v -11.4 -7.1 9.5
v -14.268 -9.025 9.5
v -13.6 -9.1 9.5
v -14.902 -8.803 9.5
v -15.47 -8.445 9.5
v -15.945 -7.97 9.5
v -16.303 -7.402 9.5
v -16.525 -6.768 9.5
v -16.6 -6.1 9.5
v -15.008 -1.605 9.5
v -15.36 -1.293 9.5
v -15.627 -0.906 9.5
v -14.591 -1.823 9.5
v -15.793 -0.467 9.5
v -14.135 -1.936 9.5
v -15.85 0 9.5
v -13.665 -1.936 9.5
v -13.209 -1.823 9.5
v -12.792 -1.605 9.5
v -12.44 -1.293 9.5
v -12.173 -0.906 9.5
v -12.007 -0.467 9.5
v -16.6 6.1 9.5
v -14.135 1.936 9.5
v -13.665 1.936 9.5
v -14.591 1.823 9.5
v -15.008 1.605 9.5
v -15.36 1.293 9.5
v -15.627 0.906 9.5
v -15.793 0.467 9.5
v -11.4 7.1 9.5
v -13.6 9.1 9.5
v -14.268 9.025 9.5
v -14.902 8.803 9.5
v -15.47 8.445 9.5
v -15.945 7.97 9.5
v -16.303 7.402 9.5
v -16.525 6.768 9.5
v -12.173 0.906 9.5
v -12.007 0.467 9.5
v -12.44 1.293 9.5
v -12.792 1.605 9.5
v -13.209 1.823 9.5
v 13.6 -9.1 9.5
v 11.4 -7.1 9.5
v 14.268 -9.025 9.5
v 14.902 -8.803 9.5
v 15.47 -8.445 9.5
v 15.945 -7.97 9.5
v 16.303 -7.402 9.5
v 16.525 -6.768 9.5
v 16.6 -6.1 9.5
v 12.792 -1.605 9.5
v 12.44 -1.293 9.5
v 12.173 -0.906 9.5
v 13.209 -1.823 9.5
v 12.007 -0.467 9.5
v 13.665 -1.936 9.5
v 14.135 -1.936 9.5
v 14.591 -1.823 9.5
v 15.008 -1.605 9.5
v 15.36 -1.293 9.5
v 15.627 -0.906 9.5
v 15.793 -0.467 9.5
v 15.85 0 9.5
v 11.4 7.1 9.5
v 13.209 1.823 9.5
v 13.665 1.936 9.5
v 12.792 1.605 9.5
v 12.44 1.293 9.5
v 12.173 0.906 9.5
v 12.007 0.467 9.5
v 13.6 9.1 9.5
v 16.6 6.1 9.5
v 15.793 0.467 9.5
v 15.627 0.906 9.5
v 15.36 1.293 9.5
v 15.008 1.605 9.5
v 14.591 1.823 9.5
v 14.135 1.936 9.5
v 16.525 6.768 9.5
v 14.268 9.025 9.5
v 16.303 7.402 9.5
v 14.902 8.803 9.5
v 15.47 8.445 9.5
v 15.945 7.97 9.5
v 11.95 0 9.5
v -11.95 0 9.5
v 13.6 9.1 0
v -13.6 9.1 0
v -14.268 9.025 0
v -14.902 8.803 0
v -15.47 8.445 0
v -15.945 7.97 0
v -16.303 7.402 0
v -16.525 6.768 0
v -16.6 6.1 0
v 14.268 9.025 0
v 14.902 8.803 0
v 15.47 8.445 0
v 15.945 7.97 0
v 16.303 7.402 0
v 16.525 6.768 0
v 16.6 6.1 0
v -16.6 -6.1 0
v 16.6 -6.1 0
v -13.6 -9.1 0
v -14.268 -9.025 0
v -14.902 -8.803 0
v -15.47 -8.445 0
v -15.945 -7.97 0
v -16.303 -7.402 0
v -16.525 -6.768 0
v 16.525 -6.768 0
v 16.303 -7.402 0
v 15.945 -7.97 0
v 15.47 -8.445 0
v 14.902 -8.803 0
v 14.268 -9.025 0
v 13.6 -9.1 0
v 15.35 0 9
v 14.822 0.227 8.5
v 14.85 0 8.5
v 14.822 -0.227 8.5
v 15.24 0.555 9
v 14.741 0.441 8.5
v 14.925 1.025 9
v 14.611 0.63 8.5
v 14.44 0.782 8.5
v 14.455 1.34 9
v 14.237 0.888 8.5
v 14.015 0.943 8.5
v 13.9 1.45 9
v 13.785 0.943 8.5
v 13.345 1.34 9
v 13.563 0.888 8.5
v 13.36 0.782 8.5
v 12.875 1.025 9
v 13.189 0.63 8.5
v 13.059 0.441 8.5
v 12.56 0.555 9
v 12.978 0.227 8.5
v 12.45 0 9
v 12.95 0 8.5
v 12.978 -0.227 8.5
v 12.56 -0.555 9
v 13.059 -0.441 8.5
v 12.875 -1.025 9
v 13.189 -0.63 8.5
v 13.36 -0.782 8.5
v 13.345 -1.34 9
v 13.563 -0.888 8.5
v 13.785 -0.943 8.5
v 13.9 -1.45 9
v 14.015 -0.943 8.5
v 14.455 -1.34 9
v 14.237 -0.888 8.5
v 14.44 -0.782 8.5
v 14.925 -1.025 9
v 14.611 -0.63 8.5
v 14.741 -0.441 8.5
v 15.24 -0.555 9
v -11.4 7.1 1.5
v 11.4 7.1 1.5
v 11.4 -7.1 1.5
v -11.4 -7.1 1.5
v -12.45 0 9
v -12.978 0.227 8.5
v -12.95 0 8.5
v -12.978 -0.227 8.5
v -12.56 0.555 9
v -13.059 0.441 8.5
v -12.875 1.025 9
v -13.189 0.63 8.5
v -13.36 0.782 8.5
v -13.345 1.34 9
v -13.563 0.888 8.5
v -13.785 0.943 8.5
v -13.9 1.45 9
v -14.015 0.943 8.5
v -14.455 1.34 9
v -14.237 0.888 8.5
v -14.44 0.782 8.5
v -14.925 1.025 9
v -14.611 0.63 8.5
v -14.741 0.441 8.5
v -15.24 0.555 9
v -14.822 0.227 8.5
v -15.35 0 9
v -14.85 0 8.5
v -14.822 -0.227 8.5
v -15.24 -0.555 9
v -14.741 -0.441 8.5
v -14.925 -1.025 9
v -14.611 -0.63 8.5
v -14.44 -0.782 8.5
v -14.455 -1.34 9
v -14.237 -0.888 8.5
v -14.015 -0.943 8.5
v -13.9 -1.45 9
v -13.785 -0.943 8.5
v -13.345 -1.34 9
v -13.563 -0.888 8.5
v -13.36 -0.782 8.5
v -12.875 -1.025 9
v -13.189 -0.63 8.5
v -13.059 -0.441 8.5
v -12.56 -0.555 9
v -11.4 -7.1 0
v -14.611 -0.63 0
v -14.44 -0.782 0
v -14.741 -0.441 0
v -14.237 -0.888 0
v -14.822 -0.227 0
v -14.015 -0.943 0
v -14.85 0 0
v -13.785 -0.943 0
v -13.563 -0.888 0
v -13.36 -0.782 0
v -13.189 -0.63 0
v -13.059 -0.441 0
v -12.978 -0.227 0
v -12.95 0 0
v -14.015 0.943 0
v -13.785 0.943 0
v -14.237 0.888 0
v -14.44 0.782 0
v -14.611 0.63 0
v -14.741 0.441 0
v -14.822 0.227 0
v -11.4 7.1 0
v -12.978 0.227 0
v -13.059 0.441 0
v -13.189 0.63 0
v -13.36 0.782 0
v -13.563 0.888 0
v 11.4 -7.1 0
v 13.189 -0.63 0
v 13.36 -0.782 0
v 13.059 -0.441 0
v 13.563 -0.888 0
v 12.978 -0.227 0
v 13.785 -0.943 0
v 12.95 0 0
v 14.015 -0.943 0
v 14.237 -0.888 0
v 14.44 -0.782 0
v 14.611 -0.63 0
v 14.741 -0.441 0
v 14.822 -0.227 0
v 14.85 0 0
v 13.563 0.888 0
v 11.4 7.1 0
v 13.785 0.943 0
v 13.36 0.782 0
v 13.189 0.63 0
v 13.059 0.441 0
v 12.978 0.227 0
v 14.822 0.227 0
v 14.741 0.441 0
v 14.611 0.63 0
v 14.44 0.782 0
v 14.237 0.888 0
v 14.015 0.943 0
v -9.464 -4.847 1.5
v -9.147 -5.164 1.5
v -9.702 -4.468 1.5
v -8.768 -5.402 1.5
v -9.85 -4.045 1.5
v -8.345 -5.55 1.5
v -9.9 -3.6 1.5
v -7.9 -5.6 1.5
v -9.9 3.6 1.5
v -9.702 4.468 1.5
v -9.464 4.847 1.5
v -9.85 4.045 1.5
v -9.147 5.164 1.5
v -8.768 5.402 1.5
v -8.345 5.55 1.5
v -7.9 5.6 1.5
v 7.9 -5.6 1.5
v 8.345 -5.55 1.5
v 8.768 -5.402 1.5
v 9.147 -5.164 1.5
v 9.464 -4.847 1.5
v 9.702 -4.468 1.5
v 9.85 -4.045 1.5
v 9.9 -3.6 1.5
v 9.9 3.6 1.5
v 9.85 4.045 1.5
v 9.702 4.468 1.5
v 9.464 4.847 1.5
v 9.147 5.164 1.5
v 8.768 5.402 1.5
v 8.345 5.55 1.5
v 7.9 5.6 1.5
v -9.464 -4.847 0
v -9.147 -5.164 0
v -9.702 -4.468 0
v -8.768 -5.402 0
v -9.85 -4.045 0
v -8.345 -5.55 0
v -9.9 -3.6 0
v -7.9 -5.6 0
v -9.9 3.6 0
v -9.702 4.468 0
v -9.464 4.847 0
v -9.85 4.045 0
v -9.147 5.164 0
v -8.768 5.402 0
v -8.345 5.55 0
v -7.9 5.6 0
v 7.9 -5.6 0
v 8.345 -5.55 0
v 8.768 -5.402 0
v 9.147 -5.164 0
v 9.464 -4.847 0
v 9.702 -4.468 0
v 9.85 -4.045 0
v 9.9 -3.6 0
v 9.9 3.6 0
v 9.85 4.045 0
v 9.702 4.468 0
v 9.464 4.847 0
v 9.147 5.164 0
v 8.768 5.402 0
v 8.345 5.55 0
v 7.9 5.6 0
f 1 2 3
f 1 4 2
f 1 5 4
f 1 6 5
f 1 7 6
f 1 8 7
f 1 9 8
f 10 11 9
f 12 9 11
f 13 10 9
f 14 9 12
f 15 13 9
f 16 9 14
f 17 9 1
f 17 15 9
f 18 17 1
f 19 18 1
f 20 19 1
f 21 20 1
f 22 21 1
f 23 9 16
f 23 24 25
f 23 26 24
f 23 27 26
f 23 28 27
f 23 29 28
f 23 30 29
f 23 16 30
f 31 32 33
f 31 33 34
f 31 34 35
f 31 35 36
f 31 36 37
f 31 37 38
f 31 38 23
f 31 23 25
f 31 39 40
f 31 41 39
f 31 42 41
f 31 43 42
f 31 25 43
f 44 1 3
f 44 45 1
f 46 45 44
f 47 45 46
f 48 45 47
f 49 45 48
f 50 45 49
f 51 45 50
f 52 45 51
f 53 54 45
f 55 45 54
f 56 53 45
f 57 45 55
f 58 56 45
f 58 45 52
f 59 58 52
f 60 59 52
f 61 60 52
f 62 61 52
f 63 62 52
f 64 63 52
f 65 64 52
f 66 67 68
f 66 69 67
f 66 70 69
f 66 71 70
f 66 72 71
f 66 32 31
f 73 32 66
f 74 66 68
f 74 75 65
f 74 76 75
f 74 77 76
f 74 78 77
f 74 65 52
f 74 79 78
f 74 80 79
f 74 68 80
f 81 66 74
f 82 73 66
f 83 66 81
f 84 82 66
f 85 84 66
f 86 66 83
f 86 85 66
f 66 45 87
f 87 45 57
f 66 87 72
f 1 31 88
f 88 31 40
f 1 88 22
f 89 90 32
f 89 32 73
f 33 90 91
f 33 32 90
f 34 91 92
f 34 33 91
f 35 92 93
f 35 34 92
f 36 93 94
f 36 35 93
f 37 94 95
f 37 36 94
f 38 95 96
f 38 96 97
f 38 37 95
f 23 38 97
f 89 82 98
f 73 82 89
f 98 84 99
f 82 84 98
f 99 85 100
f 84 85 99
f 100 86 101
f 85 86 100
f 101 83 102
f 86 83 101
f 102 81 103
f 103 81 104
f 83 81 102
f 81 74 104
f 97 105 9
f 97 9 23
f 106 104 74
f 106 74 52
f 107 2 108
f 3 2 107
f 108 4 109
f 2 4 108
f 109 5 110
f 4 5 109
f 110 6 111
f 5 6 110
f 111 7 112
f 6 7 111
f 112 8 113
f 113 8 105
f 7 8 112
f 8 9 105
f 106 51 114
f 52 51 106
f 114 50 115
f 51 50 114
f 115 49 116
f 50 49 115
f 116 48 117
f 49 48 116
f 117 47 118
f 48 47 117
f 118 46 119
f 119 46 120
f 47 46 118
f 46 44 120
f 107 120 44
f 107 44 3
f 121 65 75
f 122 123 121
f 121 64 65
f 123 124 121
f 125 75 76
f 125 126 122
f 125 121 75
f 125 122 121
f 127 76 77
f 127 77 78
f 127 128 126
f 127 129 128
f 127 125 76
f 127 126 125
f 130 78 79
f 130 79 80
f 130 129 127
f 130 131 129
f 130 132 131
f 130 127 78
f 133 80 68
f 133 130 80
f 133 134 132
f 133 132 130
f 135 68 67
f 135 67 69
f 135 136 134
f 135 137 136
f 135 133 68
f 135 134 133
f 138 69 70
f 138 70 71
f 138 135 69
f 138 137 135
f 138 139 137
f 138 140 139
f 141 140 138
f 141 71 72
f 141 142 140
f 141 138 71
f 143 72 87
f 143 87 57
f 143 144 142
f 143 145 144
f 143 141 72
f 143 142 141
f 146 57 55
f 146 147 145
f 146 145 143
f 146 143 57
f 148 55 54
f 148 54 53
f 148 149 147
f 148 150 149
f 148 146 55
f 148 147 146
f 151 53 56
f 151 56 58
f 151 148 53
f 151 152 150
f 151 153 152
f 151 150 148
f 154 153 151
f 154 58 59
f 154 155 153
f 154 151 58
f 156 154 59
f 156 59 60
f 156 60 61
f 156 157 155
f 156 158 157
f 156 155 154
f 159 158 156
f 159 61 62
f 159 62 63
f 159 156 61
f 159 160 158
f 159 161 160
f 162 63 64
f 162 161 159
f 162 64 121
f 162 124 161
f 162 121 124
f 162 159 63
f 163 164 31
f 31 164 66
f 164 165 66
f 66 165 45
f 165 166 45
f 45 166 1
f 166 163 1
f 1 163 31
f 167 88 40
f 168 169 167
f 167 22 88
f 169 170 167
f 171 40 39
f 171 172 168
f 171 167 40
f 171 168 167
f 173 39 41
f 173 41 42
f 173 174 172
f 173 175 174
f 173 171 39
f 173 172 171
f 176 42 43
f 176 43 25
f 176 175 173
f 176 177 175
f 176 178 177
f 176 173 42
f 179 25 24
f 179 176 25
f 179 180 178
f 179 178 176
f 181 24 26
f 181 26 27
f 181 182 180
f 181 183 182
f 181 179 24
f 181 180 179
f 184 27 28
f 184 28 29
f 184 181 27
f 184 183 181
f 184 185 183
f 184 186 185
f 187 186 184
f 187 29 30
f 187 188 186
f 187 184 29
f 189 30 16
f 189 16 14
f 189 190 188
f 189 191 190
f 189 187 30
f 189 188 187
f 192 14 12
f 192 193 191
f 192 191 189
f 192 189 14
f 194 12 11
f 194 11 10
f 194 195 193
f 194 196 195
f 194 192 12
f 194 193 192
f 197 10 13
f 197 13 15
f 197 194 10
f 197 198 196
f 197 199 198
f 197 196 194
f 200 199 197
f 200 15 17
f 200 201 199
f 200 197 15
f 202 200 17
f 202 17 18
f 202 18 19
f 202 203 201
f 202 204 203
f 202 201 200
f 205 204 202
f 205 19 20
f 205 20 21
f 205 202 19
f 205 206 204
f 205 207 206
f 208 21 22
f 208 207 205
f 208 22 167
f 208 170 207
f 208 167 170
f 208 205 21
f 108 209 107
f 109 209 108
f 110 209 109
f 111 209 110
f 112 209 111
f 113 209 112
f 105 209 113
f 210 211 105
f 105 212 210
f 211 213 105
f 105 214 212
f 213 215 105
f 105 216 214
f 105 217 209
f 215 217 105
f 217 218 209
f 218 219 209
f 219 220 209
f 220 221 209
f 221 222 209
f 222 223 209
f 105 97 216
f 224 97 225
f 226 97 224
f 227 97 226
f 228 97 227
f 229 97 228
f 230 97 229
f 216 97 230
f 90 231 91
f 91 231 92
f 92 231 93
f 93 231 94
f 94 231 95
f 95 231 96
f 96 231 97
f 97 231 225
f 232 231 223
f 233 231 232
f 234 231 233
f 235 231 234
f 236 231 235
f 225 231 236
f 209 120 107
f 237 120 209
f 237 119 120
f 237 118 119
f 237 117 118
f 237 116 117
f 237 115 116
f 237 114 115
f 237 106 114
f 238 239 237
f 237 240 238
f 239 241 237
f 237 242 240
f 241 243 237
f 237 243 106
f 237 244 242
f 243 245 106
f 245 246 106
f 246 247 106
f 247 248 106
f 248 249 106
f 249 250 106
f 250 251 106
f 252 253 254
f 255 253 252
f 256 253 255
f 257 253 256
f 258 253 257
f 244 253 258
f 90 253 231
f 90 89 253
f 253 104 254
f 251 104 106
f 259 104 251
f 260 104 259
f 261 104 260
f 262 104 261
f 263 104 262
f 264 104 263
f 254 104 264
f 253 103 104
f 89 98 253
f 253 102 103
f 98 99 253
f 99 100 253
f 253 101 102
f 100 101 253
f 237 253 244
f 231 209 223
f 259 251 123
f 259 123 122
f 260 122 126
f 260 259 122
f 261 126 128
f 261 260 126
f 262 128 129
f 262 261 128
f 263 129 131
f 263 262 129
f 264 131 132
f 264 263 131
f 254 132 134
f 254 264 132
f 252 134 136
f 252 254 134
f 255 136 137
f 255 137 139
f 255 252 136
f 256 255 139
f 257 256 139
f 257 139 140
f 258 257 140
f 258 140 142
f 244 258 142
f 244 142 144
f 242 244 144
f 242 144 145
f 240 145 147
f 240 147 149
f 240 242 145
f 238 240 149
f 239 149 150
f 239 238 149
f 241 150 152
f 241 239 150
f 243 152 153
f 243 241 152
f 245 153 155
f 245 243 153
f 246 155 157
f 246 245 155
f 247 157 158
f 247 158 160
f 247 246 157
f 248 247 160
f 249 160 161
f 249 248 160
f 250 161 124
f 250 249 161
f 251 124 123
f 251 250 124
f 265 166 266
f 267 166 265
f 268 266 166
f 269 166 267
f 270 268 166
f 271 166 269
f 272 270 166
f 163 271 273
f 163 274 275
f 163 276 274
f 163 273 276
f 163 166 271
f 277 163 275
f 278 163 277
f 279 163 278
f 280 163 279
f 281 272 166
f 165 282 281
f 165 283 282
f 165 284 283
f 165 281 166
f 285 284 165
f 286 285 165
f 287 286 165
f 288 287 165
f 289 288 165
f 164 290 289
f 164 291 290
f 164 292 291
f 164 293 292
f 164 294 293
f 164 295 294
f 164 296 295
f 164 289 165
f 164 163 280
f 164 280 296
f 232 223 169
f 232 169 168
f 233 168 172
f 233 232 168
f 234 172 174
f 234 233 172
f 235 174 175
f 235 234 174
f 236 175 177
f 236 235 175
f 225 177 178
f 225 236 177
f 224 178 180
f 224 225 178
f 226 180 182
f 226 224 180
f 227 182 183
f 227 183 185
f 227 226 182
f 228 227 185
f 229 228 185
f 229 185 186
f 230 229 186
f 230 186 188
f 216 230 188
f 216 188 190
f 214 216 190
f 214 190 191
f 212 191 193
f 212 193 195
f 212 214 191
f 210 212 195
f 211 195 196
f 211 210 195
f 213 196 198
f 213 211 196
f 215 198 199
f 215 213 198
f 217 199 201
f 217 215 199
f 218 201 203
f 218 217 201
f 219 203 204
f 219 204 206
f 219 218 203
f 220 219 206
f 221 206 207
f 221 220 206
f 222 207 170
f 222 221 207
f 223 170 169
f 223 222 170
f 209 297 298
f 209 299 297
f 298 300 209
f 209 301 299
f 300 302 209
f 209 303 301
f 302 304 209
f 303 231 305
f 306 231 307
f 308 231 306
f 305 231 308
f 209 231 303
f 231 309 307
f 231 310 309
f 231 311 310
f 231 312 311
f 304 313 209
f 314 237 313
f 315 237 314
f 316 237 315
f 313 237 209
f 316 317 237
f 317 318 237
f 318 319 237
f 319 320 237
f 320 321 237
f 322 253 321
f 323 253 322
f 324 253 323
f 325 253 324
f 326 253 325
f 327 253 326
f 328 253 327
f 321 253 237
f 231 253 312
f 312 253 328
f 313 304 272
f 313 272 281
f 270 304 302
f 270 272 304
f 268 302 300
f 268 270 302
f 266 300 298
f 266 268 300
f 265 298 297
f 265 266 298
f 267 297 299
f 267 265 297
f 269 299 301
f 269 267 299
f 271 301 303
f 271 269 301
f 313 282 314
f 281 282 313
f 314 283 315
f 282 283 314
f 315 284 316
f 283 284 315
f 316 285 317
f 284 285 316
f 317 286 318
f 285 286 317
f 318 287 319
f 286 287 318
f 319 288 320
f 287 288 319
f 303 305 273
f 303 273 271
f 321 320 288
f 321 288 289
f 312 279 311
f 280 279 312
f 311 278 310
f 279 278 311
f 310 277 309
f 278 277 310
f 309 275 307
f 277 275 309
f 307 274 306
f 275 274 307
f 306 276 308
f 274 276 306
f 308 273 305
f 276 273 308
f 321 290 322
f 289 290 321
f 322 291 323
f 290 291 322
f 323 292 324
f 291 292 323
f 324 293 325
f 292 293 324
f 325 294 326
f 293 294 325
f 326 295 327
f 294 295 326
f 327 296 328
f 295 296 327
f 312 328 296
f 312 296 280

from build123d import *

# Parameters (mm, degrees)
SKETCH_W      = 33.2
SKETCH_H      = 18.2
SKETCH_R      = 0.95
SKETCH_W_2    = 22.8
SKETCH_H_2    = 14.2
PAD_DEPTH     = 9.5
SKETCH001_W   = 22.8
SKETCH001_H   = 14.2
SKETCH001_W_2 = 19.8
SKETCH001_H_2 = 11.2
PAD001_DEPTH  = 1.5
CHAMFER_SIZE  = 1
FILLET_R      = 2
FILLET001_R   = 3


with BuildPart() as part:
    # Sketch → Pad (new body)
    with BuildSketch(Plane.XY):
        Rectangle(SKETCH_W, SKETCH_H)
        with Locations((-13.9, 0)):
            Circle(SKETCH_R, mode=Mode.SUBTRACT)
        with Locations((13.9, 0)):
            Circle(SKETCH_R, mode=Mode.SUBTRACT)
        Rectangle(SKETCH_W_2, SKETCH_H_2, mode=Mode.SUBTRACT)
    extrude(amount=PAD_DEPTH)

    # Sketch001 (on Face11 of Pad) → Pad001 (join)
    with BuildSketch(Plane(origin=(0, 0, 0), x_dir=(1, 0, 0), z_dir=(0, 0, -1))):
        Rectangle(SKETCH001_W, SKETCH001_H)
        Rectangle(SKETCH001_W_2, SKETCH001_H_2, mode=Mode.SUBTRACT)
    extrude(amount=-PAD001_DEPTH)

    # Chamfer
    chamfer_edges = [part.edges().sort_by_distance(p)[0] for p in [
        (12.95, 0, 9.5),
        (-14.85, 0, 9.5),
    ]]
    chamfer(chamfer_edges, length=CHAMFER_SIZE)

    # Fillet
    fillet_edges = [part.edges().sort_by_distance(p)[0] for p in [
        (9.9, -5.6, 0.75),
        (-9.9, -5.6, 0.75),
        (-9.9, 5.6, 0.75),
        (9.9, 5.6, 0.75),
    ]]
    fillet(fillet_edges, radius=FILLET_R)

    # Fillet001
    fillet001_edges = [part.edges().sort_by_distance(p)[0] for p in [
        (16.6, 9.1, 4.75),
        (-16.6, 9.1, 4.75),
        (16.6, -9.1, 4.75),
        (-16.6, -9.1, 4.75),
    ]]
    fillet(fillet001_edges, radius=FILLET001_R)


solid = part.part
